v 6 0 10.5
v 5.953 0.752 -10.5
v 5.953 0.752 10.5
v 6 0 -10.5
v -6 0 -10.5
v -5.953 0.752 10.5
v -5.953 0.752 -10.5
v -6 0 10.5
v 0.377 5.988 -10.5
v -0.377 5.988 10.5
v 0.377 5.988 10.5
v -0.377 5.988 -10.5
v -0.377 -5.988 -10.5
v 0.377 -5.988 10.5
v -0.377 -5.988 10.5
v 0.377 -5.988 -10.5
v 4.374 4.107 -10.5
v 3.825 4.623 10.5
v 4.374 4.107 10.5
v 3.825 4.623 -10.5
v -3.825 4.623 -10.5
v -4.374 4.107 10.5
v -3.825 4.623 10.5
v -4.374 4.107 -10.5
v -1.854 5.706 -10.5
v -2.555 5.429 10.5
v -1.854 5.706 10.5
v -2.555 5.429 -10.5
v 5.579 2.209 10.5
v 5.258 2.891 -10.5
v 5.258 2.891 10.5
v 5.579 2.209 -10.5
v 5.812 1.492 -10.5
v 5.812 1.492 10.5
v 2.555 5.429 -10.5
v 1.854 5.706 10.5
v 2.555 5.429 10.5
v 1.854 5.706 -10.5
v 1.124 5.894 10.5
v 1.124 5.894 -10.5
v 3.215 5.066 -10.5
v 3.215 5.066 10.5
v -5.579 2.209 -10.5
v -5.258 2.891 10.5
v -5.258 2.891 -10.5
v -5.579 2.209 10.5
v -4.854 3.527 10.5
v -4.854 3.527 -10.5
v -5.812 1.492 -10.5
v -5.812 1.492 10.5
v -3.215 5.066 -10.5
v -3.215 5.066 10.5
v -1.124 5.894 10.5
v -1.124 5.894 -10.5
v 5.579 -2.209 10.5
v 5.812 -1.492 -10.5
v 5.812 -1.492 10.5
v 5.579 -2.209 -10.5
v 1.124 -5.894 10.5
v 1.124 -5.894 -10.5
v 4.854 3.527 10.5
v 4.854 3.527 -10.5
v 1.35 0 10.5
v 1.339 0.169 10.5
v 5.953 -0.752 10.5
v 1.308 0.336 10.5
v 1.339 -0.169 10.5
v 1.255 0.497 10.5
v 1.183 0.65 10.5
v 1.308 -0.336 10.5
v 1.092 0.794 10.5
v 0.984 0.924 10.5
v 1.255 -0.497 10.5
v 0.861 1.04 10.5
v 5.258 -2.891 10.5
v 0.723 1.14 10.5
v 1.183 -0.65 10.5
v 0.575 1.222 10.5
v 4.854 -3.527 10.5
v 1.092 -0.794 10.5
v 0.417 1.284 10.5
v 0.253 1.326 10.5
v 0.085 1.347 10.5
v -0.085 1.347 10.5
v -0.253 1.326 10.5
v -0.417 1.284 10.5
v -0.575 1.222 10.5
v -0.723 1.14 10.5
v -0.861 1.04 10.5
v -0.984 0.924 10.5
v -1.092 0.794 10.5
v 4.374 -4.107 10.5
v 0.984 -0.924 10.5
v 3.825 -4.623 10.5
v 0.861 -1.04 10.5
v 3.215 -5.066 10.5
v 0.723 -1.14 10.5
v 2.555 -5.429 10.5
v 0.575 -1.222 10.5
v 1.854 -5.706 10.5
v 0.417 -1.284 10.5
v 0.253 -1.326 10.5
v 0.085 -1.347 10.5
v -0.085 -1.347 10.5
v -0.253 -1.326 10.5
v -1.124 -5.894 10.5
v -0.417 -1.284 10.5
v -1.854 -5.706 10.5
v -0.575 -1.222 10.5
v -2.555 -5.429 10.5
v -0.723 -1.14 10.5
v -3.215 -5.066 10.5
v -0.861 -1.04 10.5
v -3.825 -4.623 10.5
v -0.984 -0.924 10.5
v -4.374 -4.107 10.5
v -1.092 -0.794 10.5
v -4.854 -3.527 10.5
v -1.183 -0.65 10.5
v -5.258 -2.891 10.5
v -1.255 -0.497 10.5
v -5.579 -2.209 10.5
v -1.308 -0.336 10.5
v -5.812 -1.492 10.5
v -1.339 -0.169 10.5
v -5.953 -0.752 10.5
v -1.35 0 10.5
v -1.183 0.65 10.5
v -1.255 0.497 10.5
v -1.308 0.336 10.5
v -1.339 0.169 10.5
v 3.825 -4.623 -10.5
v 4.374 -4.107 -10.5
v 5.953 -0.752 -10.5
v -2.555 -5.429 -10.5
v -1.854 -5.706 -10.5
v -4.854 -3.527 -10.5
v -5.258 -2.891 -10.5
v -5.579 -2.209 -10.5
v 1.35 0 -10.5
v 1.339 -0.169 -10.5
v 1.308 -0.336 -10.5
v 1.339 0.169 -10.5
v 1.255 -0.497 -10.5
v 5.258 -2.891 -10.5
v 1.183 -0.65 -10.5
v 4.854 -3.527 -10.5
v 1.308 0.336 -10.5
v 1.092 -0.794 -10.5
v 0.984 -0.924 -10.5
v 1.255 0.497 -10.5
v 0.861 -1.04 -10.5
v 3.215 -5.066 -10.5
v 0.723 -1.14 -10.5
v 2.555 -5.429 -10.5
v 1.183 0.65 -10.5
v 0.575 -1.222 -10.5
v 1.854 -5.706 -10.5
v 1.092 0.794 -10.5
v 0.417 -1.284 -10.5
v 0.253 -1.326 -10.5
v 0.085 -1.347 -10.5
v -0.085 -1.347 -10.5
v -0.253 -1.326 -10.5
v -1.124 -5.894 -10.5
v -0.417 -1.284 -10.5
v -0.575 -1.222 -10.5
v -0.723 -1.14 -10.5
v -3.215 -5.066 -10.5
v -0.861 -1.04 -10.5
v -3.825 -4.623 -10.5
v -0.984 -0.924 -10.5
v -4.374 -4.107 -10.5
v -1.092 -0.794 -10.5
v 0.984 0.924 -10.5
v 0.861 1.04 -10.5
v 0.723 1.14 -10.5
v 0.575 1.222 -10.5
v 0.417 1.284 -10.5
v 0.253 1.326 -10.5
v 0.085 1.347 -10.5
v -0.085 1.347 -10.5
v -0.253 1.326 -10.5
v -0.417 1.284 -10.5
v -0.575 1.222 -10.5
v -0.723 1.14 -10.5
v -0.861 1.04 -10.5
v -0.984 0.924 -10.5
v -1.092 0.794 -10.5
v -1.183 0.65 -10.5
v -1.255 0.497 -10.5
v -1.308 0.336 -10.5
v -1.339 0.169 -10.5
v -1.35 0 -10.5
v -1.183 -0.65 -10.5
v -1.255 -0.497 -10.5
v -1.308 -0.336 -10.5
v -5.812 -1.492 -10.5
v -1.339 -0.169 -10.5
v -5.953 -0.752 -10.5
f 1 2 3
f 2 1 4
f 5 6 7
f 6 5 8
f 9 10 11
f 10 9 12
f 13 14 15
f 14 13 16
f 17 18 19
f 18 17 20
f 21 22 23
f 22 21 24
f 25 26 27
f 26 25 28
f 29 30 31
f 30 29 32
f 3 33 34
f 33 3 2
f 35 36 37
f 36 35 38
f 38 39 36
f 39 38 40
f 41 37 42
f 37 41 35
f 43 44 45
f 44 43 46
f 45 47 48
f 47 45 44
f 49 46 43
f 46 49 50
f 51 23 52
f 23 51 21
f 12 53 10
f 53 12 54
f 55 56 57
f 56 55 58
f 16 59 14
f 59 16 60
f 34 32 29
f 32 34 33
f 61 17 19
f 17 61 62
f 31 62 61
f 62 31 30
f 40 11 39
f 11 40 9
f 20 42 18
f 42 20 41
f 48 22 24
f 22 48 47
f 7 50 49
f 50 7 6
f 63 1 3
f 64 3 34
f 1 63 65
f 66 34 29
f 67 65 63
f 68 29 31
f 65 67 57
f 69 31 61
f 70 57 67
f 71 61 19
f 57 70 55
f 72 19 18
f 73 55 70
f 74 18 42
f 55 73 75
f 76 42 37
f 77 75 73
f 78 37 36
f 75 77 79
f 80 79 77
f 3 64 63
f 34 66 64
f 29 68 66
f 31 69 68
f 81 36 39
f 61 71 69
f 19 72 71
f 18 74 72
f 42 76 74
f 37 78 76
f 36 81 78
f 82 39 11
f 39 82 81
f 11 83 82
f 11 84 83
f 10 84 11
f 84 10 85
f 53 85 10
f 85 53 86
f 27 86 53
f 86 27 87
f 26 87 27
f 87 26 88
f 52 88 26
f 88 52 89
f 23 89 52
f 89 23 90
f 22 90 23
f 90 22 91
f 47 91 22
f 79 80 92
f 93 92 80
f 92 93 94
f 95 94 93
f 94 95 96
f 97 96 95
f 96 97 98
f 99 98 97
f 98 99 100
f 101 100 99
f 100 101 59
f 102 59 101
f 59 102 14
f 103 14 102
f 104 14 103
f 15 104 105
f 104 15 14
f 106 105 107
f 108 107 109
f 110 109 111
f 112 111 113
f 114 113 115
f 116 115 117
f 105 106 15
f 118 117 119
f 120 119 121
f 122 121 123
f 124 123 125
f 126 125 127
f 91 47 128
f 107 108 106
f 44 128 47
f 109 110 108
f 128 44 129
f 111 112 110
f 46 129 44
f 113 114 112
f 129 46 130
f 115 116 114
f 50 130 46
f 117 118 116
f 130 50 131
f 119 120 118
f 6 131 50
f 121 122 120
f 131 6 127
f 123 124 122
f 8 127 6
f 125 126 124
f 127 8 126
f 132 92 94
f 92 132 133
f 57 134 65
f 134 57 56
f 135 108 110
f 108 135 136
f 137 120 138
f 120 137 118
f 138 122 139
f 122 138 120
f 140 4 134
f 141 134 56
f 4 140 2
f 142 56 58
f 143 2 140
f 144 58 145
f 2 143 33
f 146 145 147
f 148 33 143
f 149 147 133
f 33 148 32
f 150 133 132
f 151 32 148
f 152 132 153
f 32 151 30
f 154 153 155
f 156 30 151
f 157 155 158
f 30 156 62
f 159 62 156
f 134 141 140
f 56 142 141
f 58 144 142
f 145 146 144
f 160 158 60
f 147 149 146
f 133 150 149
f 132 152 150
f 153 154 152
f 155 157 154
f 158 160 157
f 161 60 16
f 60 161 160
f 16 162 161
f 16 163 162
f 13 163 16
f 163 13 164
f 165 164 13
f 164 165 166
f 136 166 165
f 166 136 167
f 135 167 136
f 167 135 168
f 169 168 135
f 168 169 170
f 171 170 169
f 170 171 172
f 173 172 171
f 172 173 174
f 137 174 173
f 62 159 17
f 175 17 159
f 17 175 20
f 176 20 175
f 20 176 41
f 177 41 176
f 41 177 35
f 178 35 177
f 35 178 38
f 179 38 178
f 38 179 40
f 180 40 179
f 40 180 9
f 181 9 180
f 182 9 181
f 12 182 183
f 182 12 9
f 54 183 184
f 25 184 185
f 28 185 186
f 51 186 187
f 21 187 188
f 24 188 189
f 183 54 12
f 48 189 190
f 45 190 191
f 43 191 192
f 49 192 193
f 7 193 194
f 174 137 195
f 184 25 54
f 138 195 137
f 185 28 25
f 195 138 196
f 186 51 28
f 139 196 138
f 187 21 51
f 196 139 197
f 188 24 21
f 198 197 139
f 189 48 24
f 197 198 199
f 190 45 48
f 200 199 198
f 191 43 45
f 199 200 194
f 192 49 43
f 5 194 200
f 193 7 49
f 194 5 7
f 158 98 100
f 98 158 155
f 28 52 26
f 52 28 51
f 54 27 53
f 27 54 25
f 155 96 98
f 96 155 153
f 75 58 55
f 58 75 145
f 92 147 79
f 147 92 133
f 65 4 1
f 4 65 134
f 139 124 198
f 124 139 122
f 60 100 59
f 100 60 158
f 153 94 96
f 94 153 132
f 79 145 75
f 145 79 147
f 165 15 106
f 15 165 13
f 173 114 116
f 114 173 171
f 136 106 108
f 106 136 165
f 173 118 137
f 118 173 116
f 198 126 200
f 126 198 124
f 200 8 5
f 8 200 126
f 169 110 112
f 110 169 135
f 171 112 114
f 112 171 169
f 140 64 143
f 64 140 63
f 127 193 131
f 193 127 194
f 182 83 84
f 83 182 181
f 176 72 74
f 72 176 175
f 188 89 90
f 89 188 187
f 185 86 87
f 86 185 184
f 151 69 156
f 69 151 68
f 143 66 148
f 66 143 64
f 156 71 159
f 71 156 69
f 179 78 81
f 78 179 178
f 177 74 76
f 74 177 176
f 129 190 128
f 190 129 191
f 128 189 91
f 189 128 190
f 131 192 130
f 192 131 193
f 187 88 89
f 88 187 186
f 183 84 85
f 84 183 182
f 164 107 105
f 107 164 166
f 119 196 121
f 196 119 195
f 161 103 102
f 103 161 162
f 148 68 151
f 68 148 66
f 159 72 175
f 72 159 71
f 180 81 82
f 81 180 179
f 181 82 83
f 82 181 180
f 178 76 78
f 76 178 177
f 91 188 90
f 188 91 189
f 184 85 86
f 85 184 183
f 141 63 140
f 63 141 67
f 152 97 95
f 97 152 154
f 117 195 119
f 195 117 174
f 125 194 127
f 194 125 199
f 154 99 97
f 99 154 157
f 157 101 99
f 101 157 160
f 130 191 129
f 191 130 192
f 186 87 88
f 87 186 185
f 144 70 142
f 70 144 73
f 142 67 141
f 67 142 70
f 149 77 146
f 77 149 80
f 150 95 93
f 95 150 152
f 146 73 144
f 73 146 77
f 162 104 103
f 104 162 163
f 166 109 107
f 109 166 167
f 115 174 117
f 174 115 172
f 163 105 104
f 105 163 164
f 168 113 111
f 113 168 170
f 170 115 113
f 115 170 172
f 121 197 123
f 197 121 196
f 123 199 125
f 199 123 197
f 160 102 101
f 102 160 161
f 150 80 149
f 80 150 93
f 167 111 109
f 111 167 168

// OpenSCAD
$fn = 50;


difference() {
	union() {
		translate(v = [0, 0, -10.5000000000]) {
			cylinder(h = 21, r = 6.0000000000);
		}
	}
	union() {
		translate(v = [0, 0, -100.0000000000]) {
			cylinder(h = 200, r = 1.3500000000);
		}
	}
}
